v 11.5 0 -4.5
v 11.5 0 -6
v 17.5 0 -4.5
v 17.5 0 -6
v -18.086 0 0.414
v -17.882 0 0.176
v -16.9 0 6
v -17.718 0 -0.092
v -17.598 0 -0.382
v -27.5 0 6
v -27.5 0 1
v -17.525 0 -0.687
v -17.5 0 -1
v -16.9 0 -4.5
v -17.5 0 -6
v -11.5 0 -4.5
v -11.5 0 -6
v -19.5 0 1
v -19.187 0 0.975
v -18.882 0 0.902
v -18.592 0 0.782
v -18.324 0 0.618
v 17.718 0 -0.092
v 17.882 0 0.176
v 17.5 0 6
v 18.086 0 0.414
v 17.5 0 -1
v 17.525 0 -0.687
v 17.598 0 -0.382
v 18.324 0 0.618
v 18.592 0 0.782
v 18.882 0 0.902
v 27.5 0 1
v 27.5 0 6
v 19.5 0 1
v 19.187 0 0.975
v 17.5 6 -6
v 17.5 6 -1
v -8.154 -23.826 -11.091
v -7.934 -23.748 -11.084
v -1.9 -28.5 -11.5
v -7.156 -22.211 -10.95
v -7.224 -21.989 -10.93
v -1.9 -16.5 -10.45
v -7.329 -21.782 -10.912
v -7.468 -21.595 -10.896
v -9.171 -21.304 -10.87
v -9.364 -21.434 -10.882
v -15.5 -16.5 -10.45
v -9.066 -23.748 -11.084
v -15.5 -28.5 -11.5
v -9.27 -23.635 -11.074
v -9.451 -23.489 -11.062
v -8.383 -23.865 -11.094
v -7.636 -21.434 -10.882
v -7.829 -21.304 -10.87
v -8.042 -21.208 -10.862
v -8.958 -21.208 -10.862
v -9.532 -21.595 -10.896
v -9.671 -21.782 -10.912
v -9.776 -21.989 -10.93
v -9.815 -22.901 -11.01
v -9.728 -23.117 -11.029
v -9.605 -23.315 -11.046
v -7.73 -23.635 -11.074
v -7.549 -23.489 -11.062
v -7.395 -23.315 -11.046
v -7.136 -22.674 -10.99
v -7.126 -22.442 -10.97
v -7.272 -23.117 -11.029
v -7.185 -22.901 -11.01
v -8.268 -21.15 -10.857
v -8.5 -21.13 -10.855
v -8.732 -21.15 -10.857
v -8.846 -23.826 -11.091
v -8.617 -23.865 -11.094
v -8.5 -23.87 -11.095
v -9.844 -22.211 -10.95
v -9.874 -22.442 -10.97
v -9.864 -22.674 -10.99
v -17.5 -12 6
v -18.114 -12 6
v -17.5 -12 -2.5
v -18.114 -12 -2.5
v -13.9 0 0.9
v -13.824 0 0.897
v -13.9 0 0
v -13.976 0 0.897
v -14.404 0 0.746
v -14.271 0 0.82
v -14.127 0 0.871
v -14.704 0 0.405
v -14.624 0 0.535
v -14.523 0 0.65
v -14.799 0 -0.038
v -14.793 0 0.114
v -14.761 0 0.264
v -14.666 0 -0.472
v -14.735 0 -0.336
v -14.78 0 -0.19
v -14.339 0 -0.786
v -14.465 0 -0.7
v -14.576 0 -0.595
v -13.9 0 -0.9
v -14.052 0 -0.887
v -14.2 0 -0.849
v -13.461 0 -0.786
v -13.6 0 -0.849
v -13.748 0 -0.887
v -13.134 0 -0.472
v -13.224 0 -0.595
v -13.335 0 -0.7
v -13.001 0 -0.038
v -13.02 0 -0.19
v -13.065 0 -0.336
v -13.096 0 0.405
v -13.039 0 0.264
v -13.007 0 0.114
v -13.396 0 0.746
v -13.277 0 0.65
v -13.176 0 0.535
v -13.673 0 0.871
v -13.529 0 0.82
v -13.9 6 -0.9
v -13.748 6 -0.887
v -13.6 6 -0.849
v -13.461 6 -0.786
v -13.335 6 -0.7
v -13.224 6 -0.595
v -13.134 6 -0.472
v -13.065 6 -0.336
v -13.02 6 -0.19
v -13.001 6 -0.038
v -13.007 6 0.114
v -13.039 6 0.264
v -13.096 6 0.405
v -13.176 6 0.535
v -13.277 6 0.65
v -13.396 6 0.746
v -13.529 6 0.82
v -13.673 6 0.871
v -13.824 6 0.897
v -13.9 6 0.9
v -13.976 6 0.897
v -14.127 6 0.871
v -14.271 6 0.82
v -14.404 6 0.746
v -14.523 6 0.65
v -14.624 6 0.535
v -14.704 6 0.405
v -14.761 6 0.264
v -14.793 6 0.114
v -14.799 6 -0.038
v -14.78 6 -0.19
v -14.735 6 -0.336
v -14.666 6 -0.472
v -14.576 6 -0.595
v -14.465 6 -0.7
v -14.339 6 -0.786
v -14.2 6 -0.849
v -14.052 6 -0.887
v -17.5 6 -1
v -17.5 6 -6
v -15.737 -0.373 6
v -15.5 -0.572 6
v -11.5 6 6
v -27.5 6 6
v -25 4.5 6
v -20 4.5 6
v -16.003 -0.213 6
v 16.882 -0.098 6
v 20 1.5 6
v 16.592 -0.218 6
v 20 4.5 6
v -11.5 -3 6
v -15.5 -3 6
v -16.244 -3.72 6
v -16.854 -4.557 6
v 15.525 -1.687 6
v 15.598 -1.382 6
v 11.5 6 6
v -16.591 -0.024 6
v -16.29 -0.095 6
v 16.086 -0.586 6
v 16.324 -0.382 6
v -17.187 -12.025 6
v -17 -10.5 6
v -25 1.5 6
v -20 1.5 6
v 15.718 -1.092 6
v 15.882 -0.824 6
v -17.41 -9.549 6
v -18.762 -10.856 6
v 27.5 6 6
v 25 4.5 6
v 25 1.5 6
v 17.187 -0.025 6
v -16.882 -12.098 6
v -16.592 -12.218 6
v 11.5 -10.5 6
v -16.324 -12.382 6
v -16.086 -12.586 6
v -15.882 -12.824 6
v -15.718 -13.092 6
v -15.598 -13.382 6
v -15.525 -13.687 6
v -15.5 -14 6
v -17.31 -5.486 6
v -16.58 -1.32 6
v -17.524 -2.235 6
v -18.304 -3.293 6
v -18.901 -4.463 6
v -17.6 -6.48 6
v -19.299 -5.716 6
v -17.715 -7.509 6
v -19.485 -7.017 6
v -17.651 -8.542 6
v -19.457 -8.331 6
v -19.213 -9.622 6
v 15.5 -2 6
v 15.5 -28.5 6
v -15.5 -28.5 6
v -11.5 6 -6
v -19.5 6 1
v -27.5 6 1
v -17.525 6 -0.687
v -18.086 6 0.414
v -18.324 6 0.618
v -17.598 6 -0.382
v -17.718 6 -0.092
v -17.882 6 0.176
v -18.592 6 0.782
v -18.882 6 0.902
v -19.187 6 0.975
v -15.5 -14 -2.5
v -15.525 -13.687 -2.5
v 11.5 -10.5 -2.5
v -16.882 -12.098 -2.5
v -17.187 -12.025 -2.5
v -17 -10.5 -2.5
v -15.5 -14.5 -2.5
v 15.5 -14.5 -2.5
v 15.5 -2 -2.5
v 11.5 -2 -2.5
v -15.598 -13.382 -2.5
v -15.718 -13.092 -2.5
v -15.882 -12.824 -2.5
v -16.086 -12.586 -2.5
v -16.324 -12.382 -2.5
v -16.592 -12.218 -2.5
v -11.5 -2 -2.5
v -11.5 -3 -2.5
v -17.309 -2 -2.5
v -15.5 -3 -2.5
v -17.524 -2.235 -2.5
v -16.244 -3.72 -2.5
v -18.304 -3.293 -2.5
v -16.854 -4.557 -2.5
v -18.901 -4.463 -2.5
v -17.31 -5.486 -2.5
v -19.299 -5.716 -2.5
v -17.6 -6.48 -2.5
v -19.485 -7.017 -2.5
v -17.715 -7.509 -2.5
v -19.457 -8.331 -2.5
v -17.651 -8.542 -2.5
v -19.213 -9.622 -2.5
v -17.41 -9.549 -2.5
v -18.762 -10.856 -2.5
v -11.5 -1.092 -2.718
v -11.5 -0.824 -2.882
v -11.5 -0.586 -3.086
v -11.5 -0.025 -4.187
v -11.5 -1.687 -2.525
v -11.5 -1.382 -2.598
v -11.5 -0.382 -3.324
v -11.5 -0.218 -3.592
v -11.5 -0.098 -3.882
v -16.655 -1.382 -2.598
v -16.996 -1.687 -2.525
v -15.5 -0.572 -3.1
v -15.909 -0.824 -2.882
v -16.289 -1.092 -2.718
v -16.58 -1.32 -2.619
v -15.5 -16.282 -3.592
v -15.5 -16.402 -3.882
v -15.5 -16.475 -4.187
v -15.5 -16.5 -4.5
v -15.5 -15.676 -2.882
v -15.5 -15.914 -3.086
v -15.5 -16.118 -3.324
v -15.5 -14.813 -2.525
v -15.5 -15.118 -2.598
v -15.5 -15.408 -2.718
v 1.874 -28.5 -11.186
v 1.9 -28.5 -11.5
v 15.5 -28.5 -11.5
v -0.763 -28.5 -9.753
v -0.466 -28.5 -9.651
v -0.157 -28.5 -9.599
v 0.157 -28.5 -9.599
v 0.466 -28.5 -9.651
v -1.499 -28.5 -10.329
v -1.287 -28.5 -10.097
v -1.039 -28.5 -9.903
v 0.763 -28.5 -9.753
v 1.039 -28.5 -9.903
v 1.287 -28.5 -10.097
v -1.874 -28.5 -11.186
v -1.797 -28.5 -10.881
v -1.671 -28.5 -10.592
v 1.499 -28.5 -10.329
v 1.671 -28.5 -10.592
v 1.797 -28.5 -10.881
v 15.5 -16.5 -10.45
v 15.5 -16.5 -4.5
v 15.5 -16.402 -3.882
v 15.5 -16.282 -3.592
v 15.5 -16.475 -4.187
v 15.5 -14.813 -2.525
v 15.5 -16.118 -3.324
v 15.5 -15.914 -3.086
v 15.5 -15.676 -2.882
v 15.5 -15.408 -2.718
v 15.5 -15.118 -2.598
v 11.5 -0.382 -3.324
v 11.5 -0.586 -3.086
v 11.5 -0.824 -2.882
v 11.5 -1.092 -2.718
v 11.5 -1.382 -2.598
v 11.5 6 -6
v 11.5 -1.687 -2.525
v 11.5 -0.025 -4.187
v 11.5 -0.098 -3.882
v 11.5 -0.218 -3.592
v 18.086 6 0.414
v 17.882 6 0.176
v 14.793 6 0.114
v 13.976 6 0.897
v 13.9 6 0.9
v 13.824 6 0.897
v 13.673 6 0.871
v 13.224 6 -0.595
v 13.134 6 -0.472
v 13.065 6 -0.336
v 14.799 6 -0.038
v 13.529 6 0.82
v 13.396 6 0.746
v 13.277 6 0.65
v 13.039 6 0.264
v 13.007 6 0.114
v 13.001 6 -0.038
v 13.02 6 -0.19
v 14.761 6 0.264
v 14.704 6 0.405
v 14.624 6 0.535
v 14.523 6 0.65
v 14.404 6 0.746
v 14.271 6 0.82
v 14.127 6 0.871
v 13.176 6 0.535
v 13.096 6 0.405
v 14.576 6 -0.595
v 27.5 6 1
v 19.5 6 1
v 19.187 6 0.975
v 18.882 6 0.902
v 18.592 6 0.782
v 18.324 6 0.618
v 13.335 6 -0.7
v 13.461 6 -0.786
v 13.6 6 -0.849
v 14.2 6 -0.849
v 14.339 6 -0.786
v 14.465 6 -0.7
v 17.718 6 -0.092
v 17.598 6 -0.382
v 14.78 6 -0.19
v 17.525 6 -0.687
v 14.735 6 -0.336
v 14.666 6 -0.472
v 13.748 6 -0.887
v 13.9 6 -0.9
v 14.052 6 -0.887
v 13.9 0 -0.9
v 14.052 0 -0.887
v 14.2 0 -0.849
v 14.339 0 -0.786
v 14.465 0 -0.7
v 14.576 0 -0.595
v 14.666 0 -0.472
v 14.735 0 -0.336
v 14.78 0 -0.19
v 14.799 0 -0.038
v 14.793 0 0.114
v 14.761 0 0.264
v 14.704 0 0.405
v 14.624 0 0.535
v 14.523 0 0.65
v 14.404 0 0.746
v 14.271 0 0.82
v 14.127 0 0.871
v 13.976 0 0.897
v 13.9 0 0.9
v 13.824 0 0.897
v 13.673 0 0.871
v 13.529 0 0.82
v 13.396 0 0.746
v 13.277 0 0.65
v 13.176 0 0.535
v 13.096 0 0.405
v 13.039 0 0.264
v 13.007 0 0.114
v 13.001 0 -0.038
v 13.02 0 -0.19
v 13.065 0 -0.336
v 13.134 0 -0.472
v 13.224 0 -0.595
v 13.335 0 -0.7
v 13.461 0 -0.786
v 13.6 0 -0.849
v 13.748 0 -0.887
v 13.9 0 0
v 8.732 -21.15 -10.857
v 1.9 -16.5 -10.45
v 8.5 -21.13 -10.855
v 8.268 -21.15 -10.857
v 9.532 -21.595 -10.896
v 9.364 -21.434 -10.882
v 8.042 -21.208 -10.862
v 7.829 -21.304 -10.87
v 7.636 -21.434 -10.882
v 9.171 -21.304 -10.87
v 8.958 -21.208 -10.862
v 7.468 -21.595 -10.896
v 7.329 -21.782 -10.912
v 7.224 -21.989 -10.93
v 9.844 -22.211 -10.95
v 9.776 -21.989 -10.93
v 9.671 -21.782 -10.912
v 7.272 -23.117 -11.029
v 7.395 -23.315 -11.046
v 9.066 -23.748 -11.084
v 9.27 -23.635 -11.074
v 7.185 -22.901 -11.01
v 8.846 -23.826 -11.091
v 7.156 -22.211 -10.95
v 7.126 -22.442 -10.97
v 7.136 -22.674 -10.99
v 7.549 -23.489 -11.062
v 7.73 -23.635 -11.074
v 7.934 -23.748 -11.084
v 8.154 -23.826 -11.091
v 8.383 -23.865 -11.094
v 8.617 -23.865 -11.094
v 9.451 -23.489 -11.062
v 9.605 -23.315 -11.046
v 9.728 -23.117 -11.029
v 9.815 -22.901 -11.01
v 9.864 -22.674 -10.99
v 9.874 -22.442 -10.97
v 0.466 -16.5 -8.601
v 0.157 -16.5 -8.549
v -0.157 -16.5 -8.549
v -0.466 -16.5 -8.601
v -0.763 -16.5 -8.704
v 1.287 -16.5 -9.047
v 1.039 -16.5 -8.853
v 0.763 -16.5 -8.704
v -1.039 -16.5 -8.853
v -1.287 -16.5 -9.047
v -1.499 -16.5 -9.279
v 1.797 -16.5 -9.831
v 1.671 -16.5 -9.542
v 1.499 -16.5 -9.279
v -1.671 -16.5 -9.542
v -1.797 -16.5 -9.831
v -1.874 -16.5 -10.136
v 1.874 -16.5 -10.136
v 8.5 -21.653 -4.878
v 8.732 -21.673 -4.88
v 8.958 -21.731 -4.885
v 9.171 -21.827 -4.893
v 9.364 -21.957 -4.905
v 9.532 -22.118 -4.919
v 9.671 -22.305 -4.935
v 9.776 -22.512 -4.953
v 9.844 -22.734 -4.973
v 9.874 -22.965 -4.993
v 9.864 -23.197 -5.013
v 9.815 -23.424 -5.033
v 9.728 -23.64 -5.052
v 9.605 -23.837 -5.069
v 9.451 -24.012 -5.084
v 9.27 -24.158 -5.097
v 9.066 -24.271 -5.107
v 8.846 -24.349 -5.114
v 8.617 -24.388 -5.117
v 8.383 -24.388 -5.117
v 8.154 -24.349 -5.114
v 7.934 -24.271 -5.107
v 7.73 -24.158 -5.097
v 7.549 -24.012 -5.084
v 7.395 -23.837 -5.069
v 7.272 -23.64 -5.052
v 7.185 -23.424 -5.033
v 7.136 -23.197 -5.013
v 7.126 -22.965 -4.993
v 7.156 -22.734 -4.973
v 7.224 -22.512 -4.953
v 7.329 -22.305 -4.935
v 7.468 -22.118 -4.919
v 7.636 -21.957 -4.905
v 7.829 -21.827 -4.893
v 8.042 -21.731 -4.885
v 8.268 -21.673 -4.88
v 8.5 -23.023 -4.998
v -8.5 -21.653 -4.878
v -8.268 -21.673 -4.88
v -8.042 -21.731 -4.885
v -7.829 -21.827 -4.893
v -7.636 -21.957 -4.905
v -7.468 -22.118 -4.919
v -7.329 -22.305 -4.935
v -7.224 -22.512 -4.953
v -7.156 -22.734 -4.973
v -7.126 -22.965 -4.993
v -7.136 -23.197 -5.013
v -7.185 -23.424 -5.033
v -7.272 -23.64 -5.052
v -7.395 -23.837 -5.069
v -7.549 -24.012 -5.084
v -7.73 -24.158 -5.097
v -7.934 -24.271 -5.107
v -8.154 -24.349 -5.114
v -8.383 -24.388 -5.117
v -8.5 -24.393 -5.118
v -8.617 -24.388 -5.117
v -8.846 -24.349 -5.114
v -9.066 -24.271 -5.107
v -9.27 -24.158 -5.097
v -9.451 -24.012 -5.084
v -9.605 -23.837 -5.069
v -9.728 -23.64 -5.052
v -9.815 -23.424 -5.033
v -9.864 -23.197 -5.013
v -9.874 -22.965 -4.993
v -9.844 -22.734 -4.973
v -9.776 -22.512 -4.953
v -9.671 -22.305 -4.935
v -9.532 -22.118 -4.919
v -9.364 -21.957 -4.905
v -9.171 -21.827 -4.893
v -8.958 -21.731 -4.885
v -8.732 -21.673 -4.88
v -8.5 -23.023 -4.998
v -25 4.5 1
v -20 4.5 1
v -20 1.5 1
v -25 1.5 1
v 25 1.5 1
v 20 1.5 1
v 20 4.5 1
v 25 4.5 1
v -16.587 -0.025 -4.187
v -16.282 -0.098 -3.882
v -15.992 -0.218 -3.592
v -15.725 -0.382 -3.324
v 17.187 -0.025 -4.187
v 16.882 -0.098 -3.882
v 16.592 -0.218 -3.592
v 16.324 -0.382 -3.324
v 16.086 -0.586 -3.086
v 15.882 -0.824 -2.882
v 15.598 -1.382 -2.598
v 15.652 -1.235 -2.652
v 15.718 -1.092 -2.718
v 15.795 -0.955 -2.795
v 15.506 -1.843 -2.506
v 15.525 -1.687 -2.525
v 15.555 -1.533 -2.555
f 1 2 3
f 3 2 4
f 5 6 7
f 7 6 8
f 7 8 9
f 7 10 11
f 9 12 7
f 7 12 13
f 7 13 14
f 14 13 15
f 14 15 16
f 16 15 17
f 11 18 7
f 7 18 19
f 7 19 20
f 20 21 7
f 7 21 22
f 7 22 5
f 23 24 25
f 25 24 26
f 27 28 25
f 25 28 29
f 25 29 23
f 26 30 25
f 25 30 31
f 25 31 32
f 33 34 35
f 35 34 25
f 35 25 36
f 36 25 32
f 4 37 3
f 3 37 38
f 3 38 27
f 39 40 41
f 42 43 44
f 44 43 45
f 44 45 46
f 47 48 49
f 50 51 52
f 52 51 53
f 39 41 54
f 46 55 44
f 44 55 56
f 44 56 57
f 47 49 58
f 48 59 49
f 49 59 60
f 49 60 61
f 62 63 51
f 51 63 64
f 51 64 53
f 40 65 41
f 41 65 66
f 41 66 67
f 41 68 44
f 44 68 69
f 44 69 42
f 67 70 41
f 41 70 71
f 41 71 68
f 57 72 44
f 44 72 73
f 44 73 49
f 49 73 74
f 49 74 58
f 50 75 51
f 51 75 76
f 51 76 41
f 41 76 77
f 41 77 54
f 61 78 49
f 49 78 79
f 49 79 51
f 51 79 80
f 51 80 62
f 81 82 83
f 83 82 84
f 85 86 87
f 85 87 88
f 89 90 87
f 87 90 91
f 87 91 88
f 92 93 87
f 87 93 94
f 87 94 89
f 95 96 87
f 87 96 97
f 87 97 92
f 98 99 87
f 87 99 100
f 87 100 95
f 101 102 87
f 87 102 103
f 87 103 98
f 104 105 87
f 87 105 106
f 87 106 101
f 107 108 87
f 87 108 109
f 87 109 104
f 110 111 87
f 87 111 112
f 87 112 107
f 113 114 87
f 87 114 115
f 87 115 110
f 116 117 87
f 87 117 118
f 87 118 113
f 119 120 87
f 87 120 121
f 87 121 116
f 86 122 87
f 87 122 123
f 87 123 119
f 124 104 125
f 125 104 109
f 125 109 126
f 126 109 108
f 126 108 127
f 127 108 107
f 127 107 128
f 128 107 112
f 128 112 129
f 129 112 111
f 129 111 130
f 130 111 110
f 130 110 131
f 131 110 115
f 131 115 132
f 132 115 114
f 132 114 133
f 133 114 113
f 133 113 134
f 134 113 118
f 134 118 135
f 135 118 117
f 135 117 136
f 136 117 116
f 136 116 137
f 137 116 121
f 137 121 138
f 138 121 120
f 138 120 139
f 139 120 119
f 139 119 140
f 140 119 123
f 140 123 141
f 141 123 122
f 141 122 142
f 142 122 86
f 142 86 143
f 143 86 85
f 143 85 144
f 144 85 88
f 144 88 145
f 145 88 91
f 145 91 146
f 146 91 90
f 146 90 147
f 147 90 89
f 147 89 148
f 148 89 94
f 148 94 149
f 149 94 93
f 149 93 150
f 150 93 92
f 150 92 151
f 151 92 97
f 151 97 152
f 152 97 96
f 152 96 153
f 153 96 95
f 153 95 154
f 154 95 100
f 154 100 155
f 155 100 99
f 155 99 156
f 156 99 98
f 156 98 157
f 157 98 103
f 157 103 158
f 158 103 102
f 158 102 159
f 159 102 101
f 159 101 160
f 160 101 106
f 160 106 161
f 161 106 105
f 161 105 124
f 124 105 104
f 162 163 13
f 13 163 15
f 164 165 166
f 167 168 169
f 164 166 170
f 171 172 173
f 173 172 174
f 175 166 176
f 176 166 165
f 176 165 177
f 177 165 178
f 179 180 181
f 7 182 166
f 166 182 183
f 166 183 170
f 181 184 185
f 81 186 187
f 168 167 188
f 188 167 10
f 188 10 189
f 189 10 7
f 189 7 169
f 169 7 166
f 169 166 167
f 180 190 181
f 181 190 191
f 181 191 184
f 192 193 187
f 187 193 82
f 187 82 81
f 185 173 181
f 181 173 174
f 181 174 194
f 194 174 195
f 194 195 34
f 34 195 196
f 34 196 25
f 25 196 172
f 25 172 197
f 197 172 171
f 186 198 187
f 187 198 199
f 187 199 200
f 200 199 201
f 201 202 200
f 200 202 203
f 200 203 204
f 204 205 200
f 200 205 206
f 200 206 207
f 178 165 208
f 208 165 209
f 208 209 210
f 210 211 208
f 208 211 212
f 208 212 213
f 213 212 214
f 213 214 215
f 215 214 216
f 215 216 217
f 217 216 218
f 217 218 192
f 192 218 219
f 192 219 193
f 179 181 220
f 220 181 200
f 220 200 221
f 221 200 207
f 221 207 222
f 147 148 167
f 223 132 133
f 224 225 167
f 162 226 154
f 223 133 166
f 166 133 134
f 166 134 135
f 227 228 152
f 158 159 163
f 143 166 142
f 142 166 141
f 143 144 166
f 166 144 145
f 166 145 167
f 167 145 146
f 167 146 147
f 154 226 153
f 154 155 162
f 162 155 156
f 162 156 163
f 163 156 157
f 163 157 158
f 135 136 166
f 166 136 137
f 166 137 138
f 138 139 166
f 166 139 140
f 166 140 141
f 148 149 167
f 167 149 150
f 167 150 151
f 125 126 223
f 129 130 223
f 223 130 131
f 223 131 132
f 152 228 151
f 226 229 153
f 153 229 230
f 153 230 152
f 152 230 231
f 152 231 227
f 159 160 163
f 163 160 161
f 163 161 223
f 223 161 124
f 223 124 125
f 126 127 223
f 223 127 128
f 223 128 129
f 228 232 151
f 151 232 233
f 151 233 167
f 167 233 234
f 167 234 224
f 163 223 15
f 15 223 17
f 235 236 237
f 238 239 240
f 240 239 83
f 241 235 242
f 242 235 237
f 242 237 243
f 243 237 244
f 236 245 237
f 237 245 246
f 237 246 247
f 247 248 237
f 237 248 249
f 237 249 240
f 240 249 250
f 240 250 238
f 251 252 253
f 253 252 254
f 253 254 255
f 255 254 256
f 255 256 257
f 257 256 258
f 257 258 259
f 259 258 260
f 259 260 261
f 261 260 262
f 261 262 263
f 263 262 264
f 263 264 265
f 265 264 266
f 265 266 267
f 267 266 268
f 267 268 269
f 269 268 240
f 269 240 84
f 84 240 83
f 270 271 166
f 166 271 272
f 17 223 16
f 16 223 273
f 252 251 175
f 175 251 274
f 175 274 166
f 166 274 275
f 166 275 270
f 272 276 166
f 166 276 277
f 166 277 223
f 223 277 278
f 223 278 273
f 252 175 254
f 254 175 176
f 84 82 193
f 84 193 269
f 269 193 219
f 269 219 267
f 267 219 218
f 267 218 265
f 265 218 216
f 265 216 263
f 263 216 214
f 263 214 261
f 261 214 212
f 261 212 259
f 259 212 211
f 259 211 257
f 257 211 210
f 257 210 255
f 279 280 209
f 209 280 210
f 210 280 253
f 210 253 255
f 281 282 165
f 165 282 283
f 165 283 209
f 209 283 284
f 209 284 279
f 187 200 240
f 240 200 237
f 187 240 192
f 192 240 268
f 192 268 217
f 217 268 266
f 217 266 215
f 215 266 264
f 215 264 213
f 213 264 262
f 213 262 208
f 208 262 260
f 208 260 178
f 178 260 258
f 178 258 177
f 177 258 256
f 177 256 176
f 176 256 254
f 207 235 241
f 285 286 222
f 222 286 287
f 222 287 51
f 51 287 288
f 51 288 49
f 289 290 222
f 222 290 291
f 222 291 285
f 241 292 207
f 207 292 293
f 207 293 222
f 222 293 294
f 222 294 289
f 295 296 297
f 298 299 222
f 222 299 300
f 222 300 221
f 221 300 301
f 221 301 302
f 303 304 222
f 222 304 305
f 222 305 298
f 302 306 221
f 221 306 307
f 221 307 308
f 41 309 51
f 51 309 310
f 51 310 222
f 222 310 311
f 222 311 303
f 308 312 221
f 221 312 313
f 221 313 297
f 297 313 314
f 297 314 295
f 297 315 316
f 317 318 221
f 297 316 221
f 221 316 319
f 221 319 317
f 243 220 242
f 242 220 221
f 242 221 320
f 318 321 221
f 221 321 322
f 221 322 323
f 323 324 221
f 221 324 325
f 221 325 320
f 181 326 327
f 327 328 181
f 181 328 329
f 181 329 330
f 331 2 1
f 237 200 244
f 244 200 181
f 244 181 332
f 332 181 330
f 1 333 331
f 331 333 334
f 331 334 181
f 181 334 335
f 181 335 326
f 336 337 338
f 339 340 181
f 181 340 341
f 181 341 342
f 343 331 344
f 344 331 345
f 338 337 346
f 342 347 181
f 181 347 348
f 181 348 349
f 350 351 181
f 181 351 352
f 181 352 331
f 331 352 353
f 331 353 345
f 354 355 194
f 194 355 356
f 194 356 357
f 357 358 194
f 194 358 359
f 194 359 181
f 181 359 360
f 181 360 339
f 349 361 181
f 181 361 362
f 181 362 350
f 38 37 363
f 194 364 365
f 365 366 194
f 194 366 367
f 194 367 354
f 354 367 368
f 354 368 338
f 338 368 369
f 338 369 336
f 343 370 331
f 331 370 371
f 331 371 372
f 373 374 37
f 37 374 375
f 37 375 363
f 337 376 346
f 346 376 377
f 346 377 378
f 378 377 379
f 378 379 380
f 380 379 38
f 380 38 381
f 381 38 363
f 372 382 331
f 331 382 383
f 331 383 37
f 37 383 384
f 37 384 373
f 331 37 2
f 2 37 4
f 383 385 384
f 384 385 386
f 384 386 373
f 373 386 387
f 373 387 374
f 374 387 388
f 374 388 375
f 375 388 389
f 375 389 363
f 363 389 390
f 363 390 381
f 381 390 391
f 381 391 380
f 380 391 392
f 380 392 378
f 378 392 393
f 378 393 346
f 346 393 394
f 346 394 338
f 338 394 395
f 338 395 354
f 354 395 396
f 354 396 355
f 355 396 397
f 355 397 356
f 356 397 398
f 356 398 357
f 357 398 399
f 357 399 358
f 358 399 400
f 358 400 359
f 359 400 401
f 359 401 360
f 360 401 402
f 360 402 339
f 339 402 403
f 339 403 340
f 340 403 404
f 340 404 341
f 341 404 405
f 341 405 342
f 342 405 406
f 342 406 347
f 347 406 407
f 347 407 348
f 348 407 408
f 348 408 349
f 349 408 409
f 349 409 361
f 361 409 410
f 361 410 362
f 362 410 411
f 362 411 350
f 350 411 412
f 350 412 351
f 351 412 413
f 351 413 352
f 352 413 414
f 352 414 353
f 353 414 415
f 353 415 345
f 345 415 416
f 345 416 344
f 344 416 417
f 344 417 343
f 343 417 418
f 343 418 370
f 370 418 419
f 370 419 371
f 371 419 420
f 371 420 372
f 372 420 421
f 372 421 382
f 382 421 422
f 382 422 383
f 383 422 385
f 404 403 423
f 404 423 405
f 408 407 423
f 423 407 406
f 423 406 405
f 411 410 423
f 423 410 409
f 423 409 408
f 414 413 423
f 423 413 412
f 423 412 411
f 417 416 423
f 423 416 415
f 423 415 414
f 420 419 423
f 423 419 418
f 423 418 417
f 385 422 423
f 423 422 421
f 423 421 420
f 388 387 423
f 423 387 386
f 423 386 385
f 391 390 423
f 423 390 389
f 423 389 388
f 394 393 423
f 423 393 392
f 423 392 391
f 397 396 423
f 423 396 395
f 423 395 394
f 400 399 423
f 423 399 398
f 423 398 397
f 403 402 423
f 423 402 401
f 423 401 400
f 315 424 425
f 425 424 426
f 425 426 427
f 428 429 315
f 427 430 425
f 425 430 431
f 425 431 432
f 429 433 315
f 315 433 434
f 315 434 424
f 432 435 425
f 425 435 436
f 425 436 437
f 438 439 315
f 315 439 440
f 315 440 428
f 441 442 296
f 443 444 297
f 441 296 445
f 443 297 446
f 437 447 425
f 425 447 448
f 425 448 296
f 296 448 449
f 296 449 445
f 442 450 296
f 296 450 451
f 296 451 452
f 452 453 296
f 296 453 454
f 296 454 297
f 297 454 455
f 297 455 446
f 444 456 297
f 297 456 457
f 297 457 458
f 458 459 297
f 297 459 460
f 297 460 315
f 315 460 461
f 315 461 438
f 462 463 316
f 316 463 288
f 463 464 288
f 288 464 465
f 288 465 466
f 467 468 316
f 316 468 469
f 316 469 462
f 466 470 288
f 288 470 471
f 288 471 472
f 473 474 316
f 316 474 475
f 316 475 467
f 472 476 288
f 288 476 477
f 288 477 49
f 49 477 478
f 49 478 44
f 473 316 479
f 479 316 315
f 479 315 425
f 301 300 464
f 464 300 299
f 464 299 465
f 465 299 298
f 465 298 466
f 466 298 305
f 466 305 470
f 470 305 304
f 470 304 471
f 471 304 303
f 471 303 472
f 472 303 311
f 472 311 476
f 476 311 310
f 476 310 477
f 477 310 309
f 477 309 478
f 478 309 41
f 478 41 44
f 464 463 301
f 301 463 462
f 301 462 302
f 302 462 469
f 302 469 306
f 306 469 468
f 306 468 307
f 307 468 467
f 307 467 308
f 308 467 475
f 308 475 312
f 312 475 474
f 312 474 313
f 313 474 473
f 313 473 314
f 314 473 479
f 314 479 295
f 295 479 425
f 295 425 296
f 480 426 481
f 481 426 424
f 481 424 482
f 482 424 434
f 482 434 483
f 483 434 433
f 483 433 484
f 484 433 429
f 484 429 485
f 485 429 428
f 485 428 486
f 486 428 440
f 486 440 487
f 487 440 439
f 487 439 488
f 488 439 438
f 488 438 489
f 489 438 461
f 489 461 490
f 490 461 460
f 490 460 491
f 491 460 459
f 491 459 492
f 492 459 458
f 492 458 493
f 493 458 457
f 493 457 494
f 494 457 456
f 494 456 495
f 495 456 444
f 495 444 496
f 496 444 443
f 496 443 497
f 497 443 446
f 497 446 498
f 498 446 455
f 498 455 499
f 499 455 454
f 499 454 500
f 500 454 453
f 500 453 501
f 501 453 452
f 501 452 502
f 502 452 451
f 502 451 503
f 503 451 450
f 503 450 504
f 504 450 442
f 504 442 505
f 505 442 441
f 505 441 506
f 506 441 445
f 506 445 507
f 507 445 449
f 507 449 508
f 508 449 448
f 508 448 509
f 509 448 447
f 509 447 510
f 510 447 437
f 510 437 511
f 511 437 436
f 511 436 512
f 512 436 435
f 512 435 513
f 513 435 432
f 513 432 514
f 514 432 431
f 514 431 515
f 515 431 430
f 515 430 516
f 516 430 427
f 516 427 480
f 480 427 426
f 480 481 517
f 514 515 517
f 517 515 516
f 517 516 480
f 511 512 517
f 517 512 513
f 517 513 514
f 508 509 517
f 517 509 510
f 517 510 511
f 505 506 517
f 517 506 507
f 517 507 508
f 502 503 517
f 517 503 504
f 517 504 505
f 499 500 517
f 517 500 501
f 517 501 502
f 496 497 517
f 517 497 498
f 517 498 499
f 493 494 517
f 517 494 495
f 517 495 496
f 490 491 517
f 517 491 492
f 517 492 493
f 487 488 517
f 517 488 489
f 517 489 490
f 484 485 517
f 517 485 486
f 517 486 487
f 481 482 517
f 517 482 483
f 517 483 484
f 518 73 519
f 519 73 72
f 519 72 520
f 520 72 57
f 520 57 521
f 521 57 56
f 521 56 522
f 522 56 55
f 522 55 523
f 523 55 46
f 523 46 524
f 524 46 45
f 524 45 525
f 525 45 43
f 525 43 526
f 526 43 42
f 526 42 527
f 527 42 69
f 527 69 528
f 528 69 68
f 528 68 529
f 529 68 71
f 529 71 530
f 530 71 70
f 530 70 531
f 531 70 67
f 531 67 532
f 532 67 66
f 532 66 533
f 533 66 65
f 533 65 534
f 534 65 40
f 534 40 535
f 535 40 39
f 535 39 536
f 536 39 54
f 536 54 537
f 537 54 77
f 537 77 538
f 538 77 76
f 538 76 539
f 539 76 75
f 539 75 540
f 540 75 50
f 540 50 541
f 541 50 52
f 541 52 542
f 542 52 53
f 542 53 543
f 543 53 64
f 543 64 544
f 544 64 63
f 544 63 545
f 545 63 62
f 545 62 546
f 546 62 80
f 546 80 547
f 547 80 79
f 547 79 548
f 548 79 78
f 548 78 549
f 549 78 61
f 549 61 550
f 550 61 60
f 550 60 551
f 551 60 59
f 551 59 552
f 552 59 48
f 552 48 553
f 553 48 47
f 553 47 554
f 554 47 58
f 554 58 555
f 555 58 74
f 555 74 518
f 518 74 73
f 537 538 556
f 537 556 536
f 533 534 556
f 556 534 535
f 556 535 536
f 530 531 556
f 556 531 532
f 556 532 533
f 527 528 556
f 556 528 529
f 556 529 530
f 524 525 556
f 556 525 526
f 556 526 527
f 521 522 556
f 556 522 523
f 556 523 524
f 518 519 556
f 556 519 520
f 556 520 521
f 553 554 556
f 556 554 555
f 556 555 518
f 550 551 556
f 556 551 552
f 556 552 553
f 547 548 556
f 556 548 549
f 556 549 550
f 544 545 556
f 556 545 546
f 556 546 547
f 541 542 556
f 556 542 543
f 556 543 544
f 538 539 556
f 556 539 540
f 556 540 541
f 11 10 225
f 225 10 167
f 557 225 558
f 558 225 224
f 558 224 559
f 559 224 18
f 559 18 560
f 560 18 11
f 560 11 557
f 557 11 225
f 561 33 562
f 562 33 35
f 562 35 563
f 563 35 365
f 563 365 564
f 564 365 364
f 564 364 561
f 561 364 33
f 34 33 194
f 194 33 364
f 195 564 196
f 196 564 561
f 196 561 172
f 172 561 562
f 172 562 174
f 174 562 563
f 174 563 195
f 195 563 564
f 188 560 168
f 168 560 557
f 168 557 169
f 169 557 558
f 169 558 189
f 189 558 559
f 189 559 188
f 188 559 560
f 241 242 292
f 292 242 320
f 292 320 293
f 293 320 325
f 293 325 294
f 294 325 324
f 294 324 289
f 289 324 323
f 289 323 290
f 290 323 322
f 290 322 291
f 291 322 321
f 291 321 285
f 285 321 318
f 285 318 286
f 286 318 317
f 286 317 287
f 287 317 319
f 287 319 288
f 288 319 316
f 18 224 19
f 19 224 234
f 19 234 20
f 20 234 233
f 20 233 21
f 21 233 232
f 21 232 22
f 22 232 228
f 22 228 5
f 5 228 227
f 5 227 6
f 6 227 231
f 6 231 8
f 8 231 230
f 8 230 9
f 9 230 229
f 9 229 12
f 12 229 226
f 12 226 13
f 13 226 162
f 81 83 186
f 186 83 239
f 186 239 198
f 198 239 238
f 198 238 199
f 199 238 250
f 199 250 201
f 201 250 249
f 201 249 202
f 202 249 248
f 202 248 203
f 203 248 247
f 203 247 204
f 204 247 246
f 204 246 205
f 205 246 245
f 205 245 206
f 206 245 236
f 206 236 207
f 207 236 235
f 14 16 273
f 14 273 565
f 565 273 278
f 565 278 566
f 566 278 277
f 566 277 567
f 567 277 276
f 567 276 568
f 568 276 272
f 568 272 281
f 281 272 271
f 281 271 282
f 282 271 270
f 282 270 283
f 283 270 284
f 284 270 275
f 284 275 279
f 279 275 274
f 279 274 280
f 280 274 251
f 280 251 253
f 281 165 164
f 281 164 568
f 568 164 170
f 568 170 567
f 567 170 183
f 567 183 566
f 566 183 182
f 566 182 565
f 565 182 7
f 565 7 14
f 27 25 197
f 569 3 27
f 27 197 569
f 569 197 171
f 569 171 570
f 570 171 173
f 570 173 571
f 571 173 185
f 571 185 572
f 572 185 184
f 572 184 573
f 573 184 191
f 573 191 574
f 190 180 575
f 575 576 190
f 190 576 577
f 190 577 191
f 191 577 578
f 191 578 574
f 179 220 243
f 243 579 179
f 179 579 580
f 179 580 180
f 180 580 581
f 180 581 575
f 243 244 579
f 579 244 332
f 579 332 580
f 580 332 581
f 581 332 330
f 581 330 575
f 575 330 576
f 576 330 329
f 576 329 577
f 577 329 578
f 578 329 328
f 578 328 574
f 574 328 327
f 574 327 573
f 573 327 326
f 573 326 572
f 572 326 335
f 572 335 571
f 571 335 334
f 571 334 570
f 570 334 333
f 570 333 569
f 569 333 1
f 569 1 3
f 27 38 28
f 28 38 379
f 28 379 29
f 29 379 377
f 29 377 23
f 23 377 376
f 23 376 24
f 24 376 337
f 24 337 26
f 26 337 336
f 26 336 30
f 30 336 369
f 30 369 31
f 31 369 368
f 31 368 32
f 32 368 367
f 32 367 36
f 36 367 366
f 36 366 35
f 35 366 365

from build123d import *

# Parameters (mm, degrees)
SKETCH1_W                   = 6
SKETCH1_H                   = 12
SKETCH1_R                   = 0.9
SERVO_MOUNTING_BASE_DEPTH   = 6
SERVO_MOUNTING_BASE_2_DEPTH = 6
SERVO_ENCLOSING_FRAME_DEPTH = 2.5
WIRE_SLOT_DEPTH             = 34.977934016
WIRE_SLOT_DEPTH_BACK        = 34.977934016
SKETCH6_W                   = 4
SKETCH6_H                   = 9
WIRE_COMPENSATION_DEPTH     = 2.5
CLAMP_EXTENSION_DEPTH       = 31
SKETCH12_W                  = 1.9
SKETCH12_H                  = 12.5
SKETCH13_R                  = 1.375
CLAMP_SCREW_HOLES_DEPTH     = 6
SKETCH15_W                  = 10
SKETCH15_H                  = 5
ZIPTIE_FLAPS_DEPTH          = 6
ZIPTIE_HOLES_REACH          = 45.298
SKETCH17_W                  = 5
SKETCH17_H                  = 3
FRONT_EXTENSION_DEPTH       = 3.5
F_2MM_FILLETS_R             = 2
MORE_2MM_FILLETS_R          = 2


with BuildPart() as part:
    # Sketch1 → Servo Mounting Base (new body)
    with BuildSketch(Plane(origin=(0, 0, 0), x_dir=(1, 0, 0), z_dir=(0, 1, 0))):
        with Locations((-14.5, 0)):
            Rectangle(SKETCH1_W, SKETCH1_H)
        with Locations(Location((-13.9, 0, 0), (0, 0, 270))):
            Circle(SKETCH1_R, mode=Mode.SUBTRACT)
    extrude(amount=SERVO_MOUNTING_BASE_DEPTH)



with BuildPart() as body_2:
    # Sketch1 → Servo Mounting Base 2 (new body)
    with BuildSketch(Plane(origin=(0, 0, 0), x_dir=(1, 0, 0), z_dir=(0, 1, 0))):
        with Locations((14.5, 0)):
            Rectangle(SKETCH1_W, SKETCH1_H)
        with Locations(Location((13.9, 0, 0), (0, 0, 270))):
            Circle(SKETCH1_R, mode=Mode.SUBTRACT)
    extrude(amount=SERVO_MOUNTING_BASE_2_DEPTH)


with BuildPart() as part_1:
    add(part.part)

    add(body_2.part)  # Servo Enclosing Frame merges body 2
    # Sketch2 → Servo Enclosing Frame (add, symmetric)
    with BuildSketch(Plane.XY):
        Polygon((-15.5, 0), (-15.5, -28.5), (15.5, -28.5), (15.5, 0), (11.5, 0), (11.5, -10.5), (-11.5, -10.5), (-11.5, 0), align=None)
    extrude(amount=SERVO_ENCLOSING_FRAME_DEPTH, both=True)

    # Sketch6 → Wire Slot (cut, two sides: drawn at the far end of the back side and taken through both)
    with BuildSketch(Plane.XY.offset(-WIRE_SLOT_DEPTH_BACK)):
        with Locations((-13.5, -7.5)):
            Rectangle(SKETCH6_W, SKETCH6_H)
    extrude(amount=WIRE_SLOT_DEPTH + WIRE_SLOT_DEPTH_BACK, mode=Mode.SUBTRACT)


with BuildPart() as wire_slot_piece_1:
    # of the separate pieces the step leaves, piece 1, a body of its own (wire_slot_pieces)
    add(part_1.part.solids().sort_by_distance((11.5, -10.5, -2.5))[0])



with BuildPart() as wire_slot_piece_2:
    # of the separate pieces the step leaves, piece 2, a body of its own (wire_slot_pieces)
    add(part_1.part.solids().sort_by_distance((-17.5, 0, -6))[0])


with BuildPart() as wire_slot_piece_1_1:
    add(wire_slot_piece_1.part)

    add(wire_slot_piece_2.part)  # Wire Compensation merges Wire Slot piece 2
    # Sketch7 → Wire Compensation (add, symmetric)
    with BuildSketch(Plane.XY):
        with BuildLine():
            Line((-11.5, -12), (-18.114378278, -12))
            ThreePointArc((-18.114378278, -12), (-19.298539211, -5.715963516), (-15.5, -0.57179677))
            Line((-15.5, -0.57179677), (-15.5, -3))
            ThreePointArc((-15.5, -3), (-17.599955118, -6.480008976), (-17, -10.5))
            Line((-17, -10.5), (-11.5, -10.5))
            Line((-11.5, -10.5), (-11.5, -12))
        make_face()
    extrude(amount=WIRE_COMPENSATION_DEPTH, both=True)

    # Sketch9 → Clamp Extension (add)
    with BuildSketch(Plane.ZY.offset(15.5)):
        Polygon((-2.5, -28.5), (-11.5, -28.5), (-10.450136038, -16.5), (-2.5, -16.5), align=None)
    extrude(amount=-CLAMP_EXTENSION_DEPTH)

    # Sketch12 → Wire Groove (revolve, cut)
    with BuildSketch(Plane(origin=(0, 0.781987502, -8.938158048), x_dir=(-1, 0, 0), z_dir=(0, 0.08715574274766176, -0.9961946980917453))):
        with Locations((-0.95, -23.143839937)):
            Rectangle(SKETCH12_W, SKETCH12_H)
    revolve(axis=Axis((0, -16.047566274, -10.410553216), (0, -0.9961946980917452, -0.0871557427476618)), mode=Mode.SUBTRACT)

    # Sketch13 → Clamp Screw Holes (cut)
    with BuildSketch(Plane(origin=(0, 0.781987502, -8.938158048), x_dir=(-1, 0, 0), z_dir=(0, 0.08715574274766176, -0.9961946980917453))):
        with Locations(Location((-8.5, -23.370920912, 0), (0, 0, 90))):
            Circle(SKETCH13_R)
        with Locations(Location((8.5, -23.370920912, 0), (0, 0, 270))):
            Circle(SKETCH13_R)
    extrude(amount=-CLAMP_SCREW_HOLES_DEPTH, mode=Mode.SUBTRACT)

    # Sketch15 → Ziptie Flaps (add)
    with BuildSketch(Plane(origin=(0, 6, 0), x_dir=(1, 0, 0), z_dir=(0, 1, 0))):
        with Locations((-22.5, -3.5)):
            Rectangle(SKETCH15_W, SKETCH15_H)
        with Locations((22.5, -3.5)):
            Rectangle(SKETCH15_W, SKETCH15_H)
    extrude(amount=-ZIPTIE_FLAPS_DEPTH)

    # Sketch17 → Ziptie Holes (cut, up to next)
    with BuildSketch(Plane.XY.offset(6), mode=Mode.PRIVATE) as ziptie_holes_sk1:
        with Locations((-22.5, 3)):
            Rectangle(SKETCH17_W, SKETCH17_H)
    ziptie_holes_tool1 = extrude(ziptie_holes_sk1.sketch, amount=-ZIPTIE_HOLES_REACH, mode=Mode.PRIVATE) & wire_slot_piece_1_1.part
    # Sketch17 → Ziptie Holes (cut, up to next)
    with BuildSketch(Plane.XY.offset(6), mode=Mode.PRIVATE) as ziptie_holes_sk2:
        with Locations((22.5, 3)):
            Rectangle(SKETCH17_W, SKETCH17_H)
    ziptie_holes_tool2 = extrude(ziptie_holes_sk2.sketch, amount=-ZIPTIE_HOLES_REACH, mode=Mode.PRIVATE) & wire_slot_piece_1_1.part
    add(ziptie_holes_tool1.solids().sort_by_distance((-22.5, 3, 6))[0], mode=Mode.SUBTRACT)
    add(ziptie_holes_tool2.solids().sort_by_distance((22.5, 3, 6))[0], mode=Mode.SUBTRACT)

    # Sketch16 → Front Extension (add)
    with BuildSketch(Plane.XY.offset(2.5)):
        with BuildLine():
            Line((-15.5, 0), (-15.5, -0.57179677))
            ThreePointArc((-15.5, -0.57179677), (-19.298539211, -5.715963516), (-18.114378278, -12))
            Line((-18.114378278, -12), (-15.5, -12))
            Line((-15.5, -12), (-15.5, -28.5))
            Line((-15.5, -28.5), (15.5, -28.5))
            Line((15.5, -28.5), (15.5, 0))
            Line((15.5, 0), (11.5, 0))
            Line((11.5, 0), (11.5, -10.5))
            Line((11.5, -10.5), (-17, -10.5))
            ThreePointArc((-17, -10.5), (-17.599955118, -6.480008976), (-15.5, -3))
            Line((-15.5, -3), (-11.5, -3))
            Line((-11.5, -3), (-11.5, 0))
            Line((-11.5, 0), (-15.5, 0))
        make_face()
    extrude(amount=FRONT_EXTENSION_DEPTH)

    # 2mm Fillets
    # the kernel refuses this fillet: 2 mm, written as the material it adds along each edge
    with BuildSketch(Plane(origin=(15.5, 0, 6), x_dir=(1, 0, 0), z_dir=(0, 0, -1)), Plane(origin=(-15.5, -12, 6), x_dir=(0, -1, 0), z_dir=(0, 0, -1))) as f_2mm_fillets_piece_1:
        with BuildLine():
            CenterArc((F_2MM_FILLETS_R, F_2MM_FILLETS_R), F_2MM_FILLETS_R, 180, 90)
            Line((0, F_2MM_FILLETS_R), (-F_2MM_FILLETS_R * 0.02, F_2MM_FILLETS_R))
            Line((-F_2MM_FILLETS_R * 0.02, F_2MM_FILLETS_R), (-F_2MM_FILLETS_R * 0.02, -F_2MM_FILLETS_R * 0.02))
            Line((-F_2MM_FILLETS_R * 0.02, -F_2MM_FILLETS_R * 0.02), (F_2MM_FILLETS_R, -F_2MM_FILLETS_R * 0.02))
            Line((F_2MM_FILLETS_R, -F_2MM_FILLETS_R * 0.02), (F_2MM_FILLETS_R, 0))
        make_face()
    extrude(amount=8.5)
    with BuildSketch(Plane(origin=(15.5, 0, -2.5), x_dir=(0, -1, 0), z_dir=(-1, 0, 0))) as f_2mm_fillets_piece_2:
        with BuildLine():
            CenterArc((F_2MM_FILLETS_R, -F_2MM_FILLETS_R), F_2MM_FILLETS_R, 90, 90)
            Line((0, -F_2MM_FILLETS_R), (-F_2MM_FILLETS_R * 0.02, -F_2MM_FILLETS_R))
            Line((-F_2MM_FILLETS_R * 0.02, -F_2MM_FILLETS_R), (-F_2MM_FILLETS_R * 0.02, F_2MM_FILLETS_R * 0.02))
            Line((-F_2MM_FILLETS_R * 0.02, F_2MM_FILLETS_R * 0.02), (F_2MM_FILLETS_R, F_2MM_FILLETS_R * 0.02))
            Line((F_2MM_FILLETS_R, F_2MM_FILLETS_R * 0.02), (F_2MM_FILLETS_R, 0))
        make_face()
    extrude(amount=4)
    with BuildSketch(Plane(origin=(-15.5, -16.5, -2.5), x_dir=(0, 1, 0), z_dir=(1, 0, 0))) as f_2mm_fillets_piece_3:
        with BuildLine():
            CenterArc((F_2MM_FILLETS_R, -F_2MM_FILLETS_R), F_2MM_FILLETS_R, 90, 90)
            Line((0, -F_2MM_FILLETS_R), (-F_2MM_FILLETS_R * 0.02, -F_2MM_FILLETS_R))
            Line((-F_2MM_FILLETS_R * 0.02, -F_2MM_FILLETS_R), (-F_2MM_FILLETS_R * 0.02, F_2MM_FILLETS_R * 0.02))
            Line((-F_2MM_FILLETS_R * 0.02, F_2MM_FILLETS_R * 0.02), (F_2MM_FILLETS_R, F_2MM_FILLETS_R * 0.02))
            Line((F_2MM_FILLETS_R, F_2MM_FILLETS_R * 0.02), (F_2MM_FILLETS_R, 0))
        make_face()
    extrude(amount=31)
    with BuildSketch(Plane(origin=(-17.5, 6, 1), x_dir=(-1, 0, 0), z_dir=(0, -1, 0))) as f_2mm_fillets_piece_4:
        with BuildLine():
            CenterArc((F_2MM_FILLETS_R, F_2MM_FILLETS_R), F_2MM_FILLETS_R, 180, 90)
            Line((0, F_2MM_FILLETS_R), (-F_2MM_FILLETS_R * 0.02, F_2MM_FILLETS_R))
            Line((-F_2MM_FILLETS_R * 0.02, F_2MM_FILLETS_R), (-F_2MM_FILLETS_R * 0.02, -F_2MM_FILLETS_R * 0.02))
            Line((-F_2MM_FILLETS_R * 0.02, -F_2MM_FILLETS_R * 0.02), (F_2MM_FILLETS_R, -F_2MM_FILLETS_R * 0.02))
            Line((F_2MM_FILLETS_R, -F_2MM_FILLETS_R * 0.02), (F_2MM_FILLETS_R, 0))
        make_face()
    extrude(amount=6)
    with BuildSketch(Plane(origin=(-11.5, 0, -2.5), x_dir=(0, -1, 0), z_dir=(-1, 0, 0))) as f_2mm_fillets_piece_5_section:
        with BuildLine():
            CenterArc((F_2MM_FILLETS_R, -F_2MM_FILLETS_R), F_2MM_FILLETS_R, 90, 90)
            Line((0, -F_2MM_FILLETS_R), (-F_2MM_FILLETS_R * 0.02, -F_2MM_FILLETS_R))
            Line((-F_2MM_FILLETS_R * 0.02, -F_2MM_FILLETS_R), (-F_2MM_FILLETS_R * 0.02, F_2MM_FILLETS_R * 0.02))
            Line((-F_2MM_FILLETS_R * 0.02, F_2MM_FILLETS_R * 0.02), (F_2MM_FILLETS_R, F_2MM_FILLETS_R * 0.02))
            Line((F_2MM_FILLETS_R, F_2MM_FILLETS_R * 0.02), (F_2MM_FILLETS_R, 0))
        make_face()
    f_2mm_fillets_piece_5 = extrude(amount=4, mode=Mode.PRIVATE)
    f_2mm_fillets_piece_5 = f_2mm_fillets_piece_5 & Plane(origin=(-11.5, -7.5, -2.916455702), x_dir=(-0.8267972847076845, -0.5625, 0), z_dir=(0, 0, 1)) * Cylinder(8, 16, mode=Mode.PRIVATE)
    add(f_2mm_fillets_piece_5)
    with BuildSketch(Plane(origin=(-11.5, 0, -2.5), x_dir=(0, -1, 0), z_dir=(-1, 0, 0))) as f_2mm_fillets_piece_6_section:
        with BuildLine():
            CenterArc((F_2MM_FILLETS_R, -F_2MM_FILLETS_R), F_2MM_FILLETS_R, 90, 90)
            Line((0, -F_2MM_FILLETS_R), (-F_2MM_FILLETS_R * 0.02, -F_2MM_FILLETS_R))
            Line((-F_2MM_FILLETS_R * 0.02, -F_2MM_FILLETS_R), (-F_2MM_FILLETS_R * 0.02, F_2MM_FILLETS_R * 0.02))
            Line((-F_2MM_FILLETS_R * 0.02, F_2MM_FILLETS_R * 0.02), (F_2MM_FILLETS_R, F_2MM_FILLETS_R * 0.02))
            Line((F_2MM_FILLETS_R, F_2MM_FILLETS_R * 0.02), (F_2MM_FILLETS_R, 0))
        make_face()
    f_2mm_fillets_piece_6 = extrude(amount=4, mode=Mode.PRIVATE)
    f_2mm_fillets_piece_6 = f_2mm_fillets_piece_6 - Plane(origin=(-11.5, -7.5, -3.204669356), x_dir=(-0.8267972847076845, -0.5625, 0), z_dir=(0, 0, 1)) * Cylinder(8, 16, mode=Mode.PRIVATE)
    add(f_2mm_fillets_piece_6)
    with BuildSketch(Plane(origin=(-11.5, 0, -2.5), x_dir=(0, -1, 0), z_dir=(-1, 0, 0))) as f_2mm_fillets_piece_7_section:
        with BuildLine():
            CenterArc((F_2MM_FILLETS_R, -F_2MM_FILLETS_R), F_2MM_FILLETS_R, 90, 90)
            Line((0, -F_2MM_FILLETS_R), (-F_2MM_FILLETS_R * 0.02, -F_2MM_FILLETS_R))
            Line((-F_2MM_FILLETS_R * 0.02, -F_2MM_FILLETS_R), (-F_2MM_FILLETS_R * 0.02, F_2MM_FILLETS_R * 0.02))
            Line((-F_2MM_FILLETS_R * 0.02, F_2MM_FILLETS_R * 0.02), (F_2MM_FILLETS_R, F_2MM_FILLETS_R * 0.02))
            Line((F_2MM_FILLETS_R, F_2MM_FILLETS_R * 0.02), (F_2MM_FILLETS_R, 0))
        make_face()
    f_2mm_fillets_piece_7 = extrude(amount=9, mode=Mode.PRIVATE)
    f_2mm_fillets_piece_7 = f_2mm_fillets_piece_7 & Plane(origin=(-11.5, -7.5, -2.577343051), x_dir=(-0.8267972847076845, -0.5625, 0), z_dir=(0, 0, 1)) * Cylinder(8, 26, mode=Mode.PRIVATE)
    f_2mm_fillets_piece_7 = split(f_2mm_fillets_piece_7, bisect_by=Plane(origin=(-15.5, -1.226769703, -2.577343051), z_dir=(-1, 0, 0)), keep=Keep.TOP, mode=Mode.PRIVATE)
    add(f_2mm_fillets_piece_7)
    with BuildSketch(Plane(origin=(-15.5, 0, -2.5), x_dir=(0, -1, 0), z_dir=(0, 0, 1))) as f_2mm_fillets_piece_8:
        with BuildLine():
            CenterArc((2, -1.400084116), F_2MM_FILLETS_R, 135.569621566, 44.430378434)
            Line((0, -1.400084116), (-0.04, -1.400084116))
            Line((-0.04, -1.400084116), (-0.04, 0))
            Line((-0.04, 0), (0, 0.04))
            ThreePointArc((0, 0.04), (0.285898385, 0.04), (0.543232705, 0.028001682))
            Line((0.543232705, 0.028001682), (0.57179677, 0))
        make_face()
    extrude(amount=8.5)
    with BuildSketch(Plane(origin=(20.5, 0, -2.5), x_dir=(0, -1, 0), z_dir=(-1, 0, 0))) as f_2mm_fillets_piece_9a_section:
        with BuildLine():
            CenterArc((F_2MM_FILLETS_R, -F_2MM_FILLETS_R), F_2MM_FILLETS_R, 90, 90)
            Line((0, -F_2MM_FILLETS_R), (-F_2MM_FILLETS_R * 0.02, -F_2MM_FILLETS_R))
            Line((-F_2MM_FILLETS_R * 0.02, -F_2MM_FILLETS_R), (-F_2MM_FILLETS_R * 0.02, F_2MM_FILLETS_R * 0.02))
            Line((-F_2MM_FILLETS_R * 0.02, F_2MM_FILLETS_R * 0.02), (F_2MM_FILLETS_R, F_2MM_FILLETS_R * 0.02))
            Line((F_2MM_FILLETS_R, F_2MM_FILLETS_R * 0.02), (F_2MM_FILLETS_R, 0))
        make_face()
    f_2mm_fillets_piece_9a = extrude(amount=9, mode=Mode.PRIVATE)
    f_2mm_fillets_piece_9a = split(f_2mm_fillets_piece_9a, bisect_by=Plane(origin=(17.5, -0.452790229, -2.952790229), z_dir=(-1, 0, 0)), keep=Keep.TOP, mode=Mode.PRIVATE)
    f_2mm_fillets_piece_9a = split(f_2mm_fillets_piece_9a, bisect_by=Plane(origin=(15.5, -0.452790229, -2.952790229), z_dir=(1, 0, 0)), keep=Keep.TOP, mode=Mode.PRIVATE)
    with BuildSketch(Plane(origin=(15.5, 0, 6), x_dir=(1, 0, 0), z_dir=(0, 0, -1))) as f_2mm_fillets_piece_9b_section:
        with BuildLine():
            CenterArc((F_2MM_FILLETS_R, F_2MM_FILLETS_R), F_2MM_FILLETS_R, 180, 90)
            Line((0, F_2MM_FILLETS_R), (-F_2MM_FILLETS_R * 0.02, F_2MM_FILLETS_R))
            Line((-F_2MM_FILLETS_R * 0.02, F_2MM_FILLETS_R), (-F_2MM_FILLETS_R * 0.02, -F_2MM_FILLETS_R * 0.02))
            Line((-F_2MM_FILLETS_R * 0.02, -F_2MM_FILLETS_R * 0.02), (F_2MM_FILLETS_R, -F_2MM_FILLETS_R * 0.02))
            Line((F_2MM_FILLETS_R, -F_2MM_FILLETS_R * 0.02), (F_2MM_FILLETS_R, 0))
        make_face()
    f_2mm_fillets_piece_9b = extrude(amount=13.5, mode=Mode.PRIVATE)
    f_2mm_fillets_piece_9b = split(f_2mm_fillets_piece_9b, bisect_by=Plane(origin=(15.952790229, -0.452790229, -6), z_dir=(0, 0, 1)), keep=Keep.TOP, mode=Mode.PRIVATE)
    f_2mm_fillets_piece_9b = split(f_2mm_fillets_piece_9b, bisect_by=Plane(origin=(15.952790229, -0.452790229, -2.5), z_dir=(0, 0, -1)), keep=Keep.TOP, mode=Mode.PRIVATE)
    f_2mm_fillets_piece_9 = f_2mm_fillets_piece_9a & f_2mm_fillets_piece_9b
    add(f_2mm_fillets_piece_9)
    with BuildSketch(Plane(origin=(-11.5, 0, -2.5), x_dir=(0, -1, 0), z_dir=(-1, 0, 0))) as f_2mm_fillets_piece_10a_section:
        with BuildLine():
            CenterArc((F_2MM_FILLETS_R, -F_2MM_FILLETS_R), F_2MM_FILLETS_R, 90, 90)
            Line((0, -F_2MM_FILLETS_R), (-F_2MM_FILLETS_R * 0.02, -F_2MM_FILLETS_R))
            Line((-F_2MM_FILLETS_R * 0.02, -F_2MM_FILLETS_R), (-F_2MM_FILLETS_R * 0.02, F_2MM_FILLETS_R * 0.02))
            Line((-F_2MM_FILLETS_R * 0.02, F_2MM_FILLETS_R * 0.02), (F_2MM_FILLETS_R, F_2MM_FILLETS_R * 0.02))
            Line((F_2MM_FILLETS_R, F_2MM_FILLETS_R * 0.02), (F_2MM_FILLETS_R, 0))
        make_face()
    f_2mm_fillets_piece_10a = extrude(amount=9, mode=Mode.PRIVATE)
    f_2mm_fillets_piece_10a = f_2mm_fillets_piece_10a - Plane(origin=(-11.5, -7.5, -2.992619428), x_dir=(-0.8267972847076845, -0.5625, 0), z_dir=(0, 0, 1)) * Cylinder(8, 26, mode=Mode.PRIVATE)
    f_2mm_fillets_piece_10a = split(f_2mm_fillets_piece_10a, bisect_by=Plane(origin=(-15.5, -0.370682852, -2.992619428), z_dir=(-1, 0, 0)), keep=Keep.TOP, mode=Mode.PRIVATE)
    f_2mm_fillets_piece_10a = split(f_2mm_fillets_piece_10a, bisect_by=Plane(origin=(-17.5, -0.370682852, -2.992619428), z_dir=(1, 0, 0)), keep=Keep.TOP, mode=Mode.PRIVATE)
    with BuildSketch(Plane(origin=(-15.5, 0, -6.000210291), x_dir=(0, -1, 0), z_dir=(0, 0, 1))) as f_2mm_fillets_piece_10b_section:
        with BuildLine():
            CenterArc((2, -1.400084116), F_2MM_FILLETS_R, 135.569621566, 44.430378434)
            Line((0, -1.400084116), (-0.04, -1.400084116))
            Line((-0.04, -1.400084116), (-0.04, 0))
            Line((-0.04, 0), (0, 0.04))
            ThreePointArc((0, 0.04), (0.285898385, 0.04), (0.543232705, 0.028001682))
            Line((0.543232705, 0.028001682), (0.57179677, 0))
        make_face()
    f_2mm_fillets_piece_10b = extrude(amount=12.000210291, mode=Mode.PRIVATE)
    f_2mm_fillets_piece_10b = split(f_2mm_fillets_piece_10b, bisect_by=Plane(origin=(-15.876915422, -0.140265122, -6), z_dir=(0, 0, 1)), keep=Keep.TOP, mode=Mode.PRIVATE)
    f_2mm_fillets_piece_10b = split(f_2mm_fillets_piece_10b, bisect_by=Plane(origin=(-15.876915422, -0.140265122, -2.5), z_dir=(0, 0, -1)), keep=Keep.TOP, mode=Mode.PRIVATE)
    f_2mm_fillets_piece_10 = f_2mm_fillets_piece_10a & f_2mm_fillets_piece_10b
    add(f_2mm_fillets_piece_10)

    # More 2mm Fillets
    more_2mm_fillets_edges = [wire_slot_piece_1_1.edges().sort_by_distance(p)[0] for p in [
        (17.5, 3, 1),
    ]]
    fillet(more_2mm_fillets_edges, radius=MORE_2MM_FILLETS_R)


solid = wire_slot_piece_1_1.part
